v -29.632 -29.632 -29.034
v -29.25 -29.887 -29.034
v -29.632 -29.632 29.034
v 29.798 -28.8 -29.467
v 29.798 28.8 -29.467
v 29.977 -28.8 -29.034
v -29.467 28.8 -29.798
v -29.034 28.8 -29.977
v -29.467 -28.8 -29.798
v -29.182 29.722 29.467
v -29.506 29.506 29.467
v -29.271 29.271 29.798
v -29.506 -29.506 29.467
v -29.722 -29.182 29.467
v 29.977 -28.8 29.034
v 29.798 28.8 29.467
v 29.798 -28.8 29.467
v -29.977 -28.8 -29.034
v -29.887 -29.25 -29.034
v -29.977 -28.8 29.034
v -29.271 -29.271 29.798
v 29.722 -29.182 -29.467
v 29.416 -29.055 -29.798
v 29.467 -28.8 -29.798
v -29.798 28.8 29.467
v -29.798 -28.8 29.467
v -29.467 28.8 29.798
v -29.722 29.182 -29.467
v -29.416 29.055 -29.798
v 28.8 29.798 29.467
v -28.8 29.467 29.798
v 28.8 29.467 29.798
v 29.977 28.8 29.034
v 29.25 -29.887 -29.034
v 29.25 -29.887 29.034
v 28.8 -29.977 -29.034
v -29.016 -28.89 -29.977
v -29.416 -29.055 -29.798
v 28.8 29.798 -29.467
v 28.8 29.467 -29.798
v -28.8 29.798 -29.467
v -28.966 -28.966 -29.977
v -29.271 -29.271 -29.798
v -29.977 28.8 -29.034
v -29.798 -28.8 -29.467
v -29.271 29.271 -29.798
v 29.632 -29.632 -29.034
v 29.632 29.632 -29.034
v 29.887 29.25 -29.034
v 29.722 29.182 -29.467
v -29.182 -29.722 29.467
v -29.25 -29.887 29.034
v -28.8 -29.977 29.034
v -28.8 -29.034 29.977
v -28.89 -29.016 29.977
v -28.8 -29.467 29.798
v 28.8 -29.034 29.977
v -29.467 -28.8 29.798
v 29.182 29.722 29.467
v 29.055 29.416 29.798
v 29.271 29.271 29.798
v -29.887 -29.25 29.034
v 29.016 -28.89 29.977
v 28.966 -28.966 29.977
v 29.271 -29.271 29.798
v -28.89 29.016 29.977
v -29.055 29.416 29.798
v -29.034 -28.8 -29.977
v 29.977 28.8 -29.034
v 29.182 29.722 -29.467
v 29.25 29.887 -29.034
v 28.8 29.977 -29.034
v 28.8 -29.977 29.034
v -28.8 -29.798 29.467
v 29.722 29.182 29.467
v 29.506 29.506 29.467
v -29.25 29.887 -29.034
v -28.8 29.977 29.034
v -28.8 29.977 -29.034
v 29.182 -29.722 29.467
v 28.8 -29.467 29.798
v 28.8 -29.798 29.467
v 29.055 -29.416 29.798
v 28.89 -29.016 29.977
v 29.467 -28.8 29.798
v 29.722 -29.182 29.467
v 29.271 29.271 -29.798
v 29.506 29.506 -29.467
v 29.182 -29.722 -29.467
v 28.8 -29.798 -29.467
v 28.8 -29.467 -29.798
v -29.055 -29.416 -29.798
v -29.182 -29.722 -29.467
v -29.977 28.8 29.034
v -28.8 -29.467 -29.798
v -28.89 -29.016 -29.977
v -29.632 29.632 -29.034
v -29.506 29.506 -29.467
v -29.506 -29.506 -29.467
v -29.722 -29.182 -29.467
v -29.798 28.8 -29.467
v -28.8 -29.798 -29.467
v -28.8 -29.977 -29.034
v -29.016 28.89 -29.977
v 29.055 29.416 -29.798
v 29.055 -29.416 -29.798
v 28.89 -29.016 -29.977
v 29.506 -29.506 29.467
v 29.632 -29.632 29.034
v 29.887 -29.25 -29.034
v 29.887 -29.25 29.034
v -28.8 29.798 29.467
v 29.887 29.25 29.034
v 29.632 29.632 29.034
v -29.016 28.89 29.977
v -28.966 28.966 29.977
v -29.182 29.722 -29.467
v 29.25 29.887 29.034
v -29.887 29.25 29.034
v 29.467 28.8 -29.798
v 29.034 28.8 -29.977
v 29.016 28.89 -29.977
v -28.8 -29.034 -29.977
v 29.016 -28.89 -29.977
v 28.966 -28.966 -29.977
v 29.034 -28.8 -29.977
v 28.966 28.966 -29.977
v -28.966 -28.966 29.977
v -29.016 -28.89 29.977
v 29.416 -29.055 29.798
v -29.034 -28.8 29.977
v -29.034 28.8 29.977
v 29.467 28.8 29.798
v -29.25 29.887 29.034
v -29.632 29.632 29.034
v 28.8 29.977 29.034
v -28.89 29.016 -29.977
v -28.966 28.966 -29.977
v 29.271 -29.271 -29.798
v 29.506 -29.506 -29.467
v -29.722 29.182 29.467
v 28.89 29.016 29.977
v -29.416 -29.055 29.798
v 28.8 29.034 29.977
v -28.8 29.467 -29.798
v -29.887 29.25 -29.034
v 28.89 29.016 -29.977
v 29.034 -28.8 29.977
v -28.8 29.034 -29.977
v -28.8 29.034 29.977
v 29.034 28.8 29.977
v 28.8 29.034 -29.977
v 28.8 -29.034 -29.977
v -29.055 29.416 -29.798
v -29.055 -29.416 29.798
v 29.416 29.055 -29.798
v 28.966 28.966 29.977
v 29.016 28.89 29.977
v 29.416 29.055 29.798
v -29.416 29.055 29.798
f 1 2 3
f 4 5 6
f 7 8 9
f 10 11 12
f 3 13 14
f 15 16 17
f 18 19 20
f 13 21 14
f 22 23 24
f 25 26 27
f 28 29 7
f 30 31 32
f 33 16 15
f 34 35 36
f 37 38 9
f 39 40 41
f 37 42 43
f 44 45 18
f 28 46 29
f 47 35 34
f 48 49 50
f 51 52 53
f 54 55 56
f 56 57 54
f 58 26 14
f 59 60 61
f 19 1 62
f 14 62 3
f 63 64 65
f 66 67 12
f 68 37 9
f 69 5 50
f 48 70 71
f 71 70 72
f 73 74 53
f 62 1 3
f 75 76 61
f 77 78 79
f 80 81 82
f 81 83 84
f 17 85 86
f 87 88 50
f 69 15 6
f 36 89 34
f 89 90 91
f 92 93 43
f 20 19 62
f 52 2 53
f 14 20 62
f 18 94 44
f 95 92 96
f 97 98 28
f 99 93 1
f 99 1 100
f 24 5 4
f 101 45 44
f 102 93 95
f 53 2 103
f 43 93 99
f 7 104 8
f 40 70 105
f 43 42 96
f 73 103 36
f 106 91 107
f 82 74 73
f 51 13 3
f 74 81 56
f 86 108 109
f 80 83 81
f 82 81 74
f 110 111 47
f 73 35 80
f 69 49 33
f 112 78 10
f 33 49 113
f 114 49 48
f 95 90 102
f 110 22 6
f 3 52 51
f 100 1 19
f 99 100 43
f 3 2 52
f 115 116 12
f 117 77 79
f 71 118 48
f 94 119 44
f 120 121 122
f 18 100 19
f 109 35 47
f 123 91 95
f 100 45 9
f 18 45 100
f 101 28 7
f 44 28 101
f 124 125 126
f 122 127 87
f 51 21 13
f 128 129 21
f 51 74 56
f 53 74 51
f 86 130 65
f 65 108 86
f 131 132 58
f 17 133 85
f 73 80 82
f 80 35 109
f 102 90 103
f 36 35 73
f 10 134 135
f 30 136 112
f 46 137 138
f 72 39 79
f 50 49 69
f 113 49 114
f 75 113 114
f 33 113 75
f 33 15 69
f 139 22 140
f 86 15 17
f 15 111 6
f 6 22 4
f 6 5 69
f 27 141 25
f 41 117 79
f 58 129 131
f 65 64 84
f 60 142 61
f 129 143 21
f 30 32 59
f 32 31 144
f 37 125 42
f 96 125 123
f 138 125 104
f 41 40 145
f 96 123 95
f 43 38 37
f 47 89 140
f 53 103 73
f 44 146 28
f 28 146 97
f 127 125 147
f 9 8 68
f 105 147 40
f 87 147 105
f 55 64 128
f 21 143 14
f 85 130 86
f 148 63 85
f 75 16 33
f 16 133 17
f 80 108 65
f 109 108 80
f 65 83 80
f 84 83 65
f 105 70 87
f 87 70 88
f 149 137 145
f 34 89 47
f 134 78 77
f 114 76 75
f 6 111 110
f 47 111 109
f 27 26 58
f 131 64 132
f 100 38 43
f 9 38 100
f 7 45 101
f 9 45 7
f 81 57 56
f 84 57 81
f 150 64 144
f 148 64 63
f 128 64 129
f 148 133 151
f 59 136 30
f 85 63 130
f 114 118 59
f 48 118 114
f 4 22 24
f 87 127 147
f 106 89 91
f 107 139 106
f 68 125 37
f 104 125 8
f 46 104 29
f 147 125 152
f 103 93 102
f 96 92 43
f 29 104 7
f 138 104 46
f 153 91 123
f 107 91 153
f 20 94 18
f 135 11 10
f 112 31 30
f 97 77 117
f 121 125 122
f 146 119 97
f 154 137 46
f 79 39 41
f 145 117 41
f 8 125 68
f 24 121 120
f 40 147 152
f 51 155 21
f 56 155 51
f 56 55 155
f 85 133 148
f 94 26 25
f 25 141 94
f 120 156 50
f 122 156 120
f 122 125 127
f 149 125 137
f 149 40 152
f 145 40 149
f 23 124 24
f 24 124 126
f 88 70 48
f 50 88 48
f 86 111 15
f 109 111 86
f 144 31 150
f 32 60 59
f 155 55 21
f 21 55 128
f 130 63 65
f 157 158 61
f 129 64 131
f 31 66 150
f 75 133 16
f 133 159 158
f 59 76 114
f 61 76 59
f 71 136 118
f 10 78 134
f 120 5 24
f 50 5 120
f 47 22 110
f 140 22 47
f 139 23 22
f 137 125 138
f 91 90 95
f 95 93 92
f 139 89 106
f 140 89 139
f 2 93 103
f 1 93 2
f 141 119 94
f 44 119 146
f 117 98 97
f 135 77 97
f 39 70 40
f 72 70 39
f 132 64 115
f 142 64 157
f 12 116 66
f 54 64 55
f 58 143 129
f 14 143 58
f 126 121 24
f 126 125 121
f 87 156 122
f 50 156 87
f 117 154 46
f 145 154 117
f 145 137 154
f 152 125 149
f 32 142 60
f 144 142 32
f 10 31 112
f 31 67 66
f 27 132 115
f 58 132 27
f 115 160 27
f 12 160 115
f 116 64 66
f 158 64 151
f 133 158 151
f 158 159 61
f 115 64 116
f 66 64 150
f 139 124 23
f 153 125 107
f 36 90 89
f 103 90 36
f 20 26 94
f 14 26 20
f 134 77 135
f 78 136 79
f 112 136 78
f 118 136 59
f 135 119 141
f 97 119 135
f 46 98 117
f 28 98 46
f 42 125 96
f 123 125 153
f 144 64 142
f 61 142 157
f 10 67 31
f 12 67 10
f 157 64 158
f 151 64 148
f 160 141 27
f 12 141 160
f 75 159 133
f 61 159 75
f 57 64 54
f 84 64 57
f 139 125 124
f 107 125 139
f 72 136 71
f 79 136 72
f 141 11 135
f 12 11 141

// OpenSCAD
// file: _common.scad
// orthographic 共用尺寸 / 解析度設定
// 所有物件外接立方控制在 ~80 mm，方便相機固定縮放
$fn = 64;  // 圓面解析度（影響 STL 大小，64 在視覺與大小取得平衡）
CHAMFER = 1.2;  // 標準導角尺寸
// main file
// 立方體（60×60×60，邊緣做小導角）
include <_common.scad>

module chamfered_cube(size, chamfer = CHAMFER) {
  s = size;
  c = chamfer;
  hull() {
    // 8 個內縮的小立方體用 hull 包起來就會有導角效果
    for (x = [c, s - c]) for (y = [c, s - c]) for (z = [c, s - c])
      translate([x, y, z]) sphere(r = c, $fn = 16);
  }
}

translate([-30, -30, -30]) chamfered_cube(60);
